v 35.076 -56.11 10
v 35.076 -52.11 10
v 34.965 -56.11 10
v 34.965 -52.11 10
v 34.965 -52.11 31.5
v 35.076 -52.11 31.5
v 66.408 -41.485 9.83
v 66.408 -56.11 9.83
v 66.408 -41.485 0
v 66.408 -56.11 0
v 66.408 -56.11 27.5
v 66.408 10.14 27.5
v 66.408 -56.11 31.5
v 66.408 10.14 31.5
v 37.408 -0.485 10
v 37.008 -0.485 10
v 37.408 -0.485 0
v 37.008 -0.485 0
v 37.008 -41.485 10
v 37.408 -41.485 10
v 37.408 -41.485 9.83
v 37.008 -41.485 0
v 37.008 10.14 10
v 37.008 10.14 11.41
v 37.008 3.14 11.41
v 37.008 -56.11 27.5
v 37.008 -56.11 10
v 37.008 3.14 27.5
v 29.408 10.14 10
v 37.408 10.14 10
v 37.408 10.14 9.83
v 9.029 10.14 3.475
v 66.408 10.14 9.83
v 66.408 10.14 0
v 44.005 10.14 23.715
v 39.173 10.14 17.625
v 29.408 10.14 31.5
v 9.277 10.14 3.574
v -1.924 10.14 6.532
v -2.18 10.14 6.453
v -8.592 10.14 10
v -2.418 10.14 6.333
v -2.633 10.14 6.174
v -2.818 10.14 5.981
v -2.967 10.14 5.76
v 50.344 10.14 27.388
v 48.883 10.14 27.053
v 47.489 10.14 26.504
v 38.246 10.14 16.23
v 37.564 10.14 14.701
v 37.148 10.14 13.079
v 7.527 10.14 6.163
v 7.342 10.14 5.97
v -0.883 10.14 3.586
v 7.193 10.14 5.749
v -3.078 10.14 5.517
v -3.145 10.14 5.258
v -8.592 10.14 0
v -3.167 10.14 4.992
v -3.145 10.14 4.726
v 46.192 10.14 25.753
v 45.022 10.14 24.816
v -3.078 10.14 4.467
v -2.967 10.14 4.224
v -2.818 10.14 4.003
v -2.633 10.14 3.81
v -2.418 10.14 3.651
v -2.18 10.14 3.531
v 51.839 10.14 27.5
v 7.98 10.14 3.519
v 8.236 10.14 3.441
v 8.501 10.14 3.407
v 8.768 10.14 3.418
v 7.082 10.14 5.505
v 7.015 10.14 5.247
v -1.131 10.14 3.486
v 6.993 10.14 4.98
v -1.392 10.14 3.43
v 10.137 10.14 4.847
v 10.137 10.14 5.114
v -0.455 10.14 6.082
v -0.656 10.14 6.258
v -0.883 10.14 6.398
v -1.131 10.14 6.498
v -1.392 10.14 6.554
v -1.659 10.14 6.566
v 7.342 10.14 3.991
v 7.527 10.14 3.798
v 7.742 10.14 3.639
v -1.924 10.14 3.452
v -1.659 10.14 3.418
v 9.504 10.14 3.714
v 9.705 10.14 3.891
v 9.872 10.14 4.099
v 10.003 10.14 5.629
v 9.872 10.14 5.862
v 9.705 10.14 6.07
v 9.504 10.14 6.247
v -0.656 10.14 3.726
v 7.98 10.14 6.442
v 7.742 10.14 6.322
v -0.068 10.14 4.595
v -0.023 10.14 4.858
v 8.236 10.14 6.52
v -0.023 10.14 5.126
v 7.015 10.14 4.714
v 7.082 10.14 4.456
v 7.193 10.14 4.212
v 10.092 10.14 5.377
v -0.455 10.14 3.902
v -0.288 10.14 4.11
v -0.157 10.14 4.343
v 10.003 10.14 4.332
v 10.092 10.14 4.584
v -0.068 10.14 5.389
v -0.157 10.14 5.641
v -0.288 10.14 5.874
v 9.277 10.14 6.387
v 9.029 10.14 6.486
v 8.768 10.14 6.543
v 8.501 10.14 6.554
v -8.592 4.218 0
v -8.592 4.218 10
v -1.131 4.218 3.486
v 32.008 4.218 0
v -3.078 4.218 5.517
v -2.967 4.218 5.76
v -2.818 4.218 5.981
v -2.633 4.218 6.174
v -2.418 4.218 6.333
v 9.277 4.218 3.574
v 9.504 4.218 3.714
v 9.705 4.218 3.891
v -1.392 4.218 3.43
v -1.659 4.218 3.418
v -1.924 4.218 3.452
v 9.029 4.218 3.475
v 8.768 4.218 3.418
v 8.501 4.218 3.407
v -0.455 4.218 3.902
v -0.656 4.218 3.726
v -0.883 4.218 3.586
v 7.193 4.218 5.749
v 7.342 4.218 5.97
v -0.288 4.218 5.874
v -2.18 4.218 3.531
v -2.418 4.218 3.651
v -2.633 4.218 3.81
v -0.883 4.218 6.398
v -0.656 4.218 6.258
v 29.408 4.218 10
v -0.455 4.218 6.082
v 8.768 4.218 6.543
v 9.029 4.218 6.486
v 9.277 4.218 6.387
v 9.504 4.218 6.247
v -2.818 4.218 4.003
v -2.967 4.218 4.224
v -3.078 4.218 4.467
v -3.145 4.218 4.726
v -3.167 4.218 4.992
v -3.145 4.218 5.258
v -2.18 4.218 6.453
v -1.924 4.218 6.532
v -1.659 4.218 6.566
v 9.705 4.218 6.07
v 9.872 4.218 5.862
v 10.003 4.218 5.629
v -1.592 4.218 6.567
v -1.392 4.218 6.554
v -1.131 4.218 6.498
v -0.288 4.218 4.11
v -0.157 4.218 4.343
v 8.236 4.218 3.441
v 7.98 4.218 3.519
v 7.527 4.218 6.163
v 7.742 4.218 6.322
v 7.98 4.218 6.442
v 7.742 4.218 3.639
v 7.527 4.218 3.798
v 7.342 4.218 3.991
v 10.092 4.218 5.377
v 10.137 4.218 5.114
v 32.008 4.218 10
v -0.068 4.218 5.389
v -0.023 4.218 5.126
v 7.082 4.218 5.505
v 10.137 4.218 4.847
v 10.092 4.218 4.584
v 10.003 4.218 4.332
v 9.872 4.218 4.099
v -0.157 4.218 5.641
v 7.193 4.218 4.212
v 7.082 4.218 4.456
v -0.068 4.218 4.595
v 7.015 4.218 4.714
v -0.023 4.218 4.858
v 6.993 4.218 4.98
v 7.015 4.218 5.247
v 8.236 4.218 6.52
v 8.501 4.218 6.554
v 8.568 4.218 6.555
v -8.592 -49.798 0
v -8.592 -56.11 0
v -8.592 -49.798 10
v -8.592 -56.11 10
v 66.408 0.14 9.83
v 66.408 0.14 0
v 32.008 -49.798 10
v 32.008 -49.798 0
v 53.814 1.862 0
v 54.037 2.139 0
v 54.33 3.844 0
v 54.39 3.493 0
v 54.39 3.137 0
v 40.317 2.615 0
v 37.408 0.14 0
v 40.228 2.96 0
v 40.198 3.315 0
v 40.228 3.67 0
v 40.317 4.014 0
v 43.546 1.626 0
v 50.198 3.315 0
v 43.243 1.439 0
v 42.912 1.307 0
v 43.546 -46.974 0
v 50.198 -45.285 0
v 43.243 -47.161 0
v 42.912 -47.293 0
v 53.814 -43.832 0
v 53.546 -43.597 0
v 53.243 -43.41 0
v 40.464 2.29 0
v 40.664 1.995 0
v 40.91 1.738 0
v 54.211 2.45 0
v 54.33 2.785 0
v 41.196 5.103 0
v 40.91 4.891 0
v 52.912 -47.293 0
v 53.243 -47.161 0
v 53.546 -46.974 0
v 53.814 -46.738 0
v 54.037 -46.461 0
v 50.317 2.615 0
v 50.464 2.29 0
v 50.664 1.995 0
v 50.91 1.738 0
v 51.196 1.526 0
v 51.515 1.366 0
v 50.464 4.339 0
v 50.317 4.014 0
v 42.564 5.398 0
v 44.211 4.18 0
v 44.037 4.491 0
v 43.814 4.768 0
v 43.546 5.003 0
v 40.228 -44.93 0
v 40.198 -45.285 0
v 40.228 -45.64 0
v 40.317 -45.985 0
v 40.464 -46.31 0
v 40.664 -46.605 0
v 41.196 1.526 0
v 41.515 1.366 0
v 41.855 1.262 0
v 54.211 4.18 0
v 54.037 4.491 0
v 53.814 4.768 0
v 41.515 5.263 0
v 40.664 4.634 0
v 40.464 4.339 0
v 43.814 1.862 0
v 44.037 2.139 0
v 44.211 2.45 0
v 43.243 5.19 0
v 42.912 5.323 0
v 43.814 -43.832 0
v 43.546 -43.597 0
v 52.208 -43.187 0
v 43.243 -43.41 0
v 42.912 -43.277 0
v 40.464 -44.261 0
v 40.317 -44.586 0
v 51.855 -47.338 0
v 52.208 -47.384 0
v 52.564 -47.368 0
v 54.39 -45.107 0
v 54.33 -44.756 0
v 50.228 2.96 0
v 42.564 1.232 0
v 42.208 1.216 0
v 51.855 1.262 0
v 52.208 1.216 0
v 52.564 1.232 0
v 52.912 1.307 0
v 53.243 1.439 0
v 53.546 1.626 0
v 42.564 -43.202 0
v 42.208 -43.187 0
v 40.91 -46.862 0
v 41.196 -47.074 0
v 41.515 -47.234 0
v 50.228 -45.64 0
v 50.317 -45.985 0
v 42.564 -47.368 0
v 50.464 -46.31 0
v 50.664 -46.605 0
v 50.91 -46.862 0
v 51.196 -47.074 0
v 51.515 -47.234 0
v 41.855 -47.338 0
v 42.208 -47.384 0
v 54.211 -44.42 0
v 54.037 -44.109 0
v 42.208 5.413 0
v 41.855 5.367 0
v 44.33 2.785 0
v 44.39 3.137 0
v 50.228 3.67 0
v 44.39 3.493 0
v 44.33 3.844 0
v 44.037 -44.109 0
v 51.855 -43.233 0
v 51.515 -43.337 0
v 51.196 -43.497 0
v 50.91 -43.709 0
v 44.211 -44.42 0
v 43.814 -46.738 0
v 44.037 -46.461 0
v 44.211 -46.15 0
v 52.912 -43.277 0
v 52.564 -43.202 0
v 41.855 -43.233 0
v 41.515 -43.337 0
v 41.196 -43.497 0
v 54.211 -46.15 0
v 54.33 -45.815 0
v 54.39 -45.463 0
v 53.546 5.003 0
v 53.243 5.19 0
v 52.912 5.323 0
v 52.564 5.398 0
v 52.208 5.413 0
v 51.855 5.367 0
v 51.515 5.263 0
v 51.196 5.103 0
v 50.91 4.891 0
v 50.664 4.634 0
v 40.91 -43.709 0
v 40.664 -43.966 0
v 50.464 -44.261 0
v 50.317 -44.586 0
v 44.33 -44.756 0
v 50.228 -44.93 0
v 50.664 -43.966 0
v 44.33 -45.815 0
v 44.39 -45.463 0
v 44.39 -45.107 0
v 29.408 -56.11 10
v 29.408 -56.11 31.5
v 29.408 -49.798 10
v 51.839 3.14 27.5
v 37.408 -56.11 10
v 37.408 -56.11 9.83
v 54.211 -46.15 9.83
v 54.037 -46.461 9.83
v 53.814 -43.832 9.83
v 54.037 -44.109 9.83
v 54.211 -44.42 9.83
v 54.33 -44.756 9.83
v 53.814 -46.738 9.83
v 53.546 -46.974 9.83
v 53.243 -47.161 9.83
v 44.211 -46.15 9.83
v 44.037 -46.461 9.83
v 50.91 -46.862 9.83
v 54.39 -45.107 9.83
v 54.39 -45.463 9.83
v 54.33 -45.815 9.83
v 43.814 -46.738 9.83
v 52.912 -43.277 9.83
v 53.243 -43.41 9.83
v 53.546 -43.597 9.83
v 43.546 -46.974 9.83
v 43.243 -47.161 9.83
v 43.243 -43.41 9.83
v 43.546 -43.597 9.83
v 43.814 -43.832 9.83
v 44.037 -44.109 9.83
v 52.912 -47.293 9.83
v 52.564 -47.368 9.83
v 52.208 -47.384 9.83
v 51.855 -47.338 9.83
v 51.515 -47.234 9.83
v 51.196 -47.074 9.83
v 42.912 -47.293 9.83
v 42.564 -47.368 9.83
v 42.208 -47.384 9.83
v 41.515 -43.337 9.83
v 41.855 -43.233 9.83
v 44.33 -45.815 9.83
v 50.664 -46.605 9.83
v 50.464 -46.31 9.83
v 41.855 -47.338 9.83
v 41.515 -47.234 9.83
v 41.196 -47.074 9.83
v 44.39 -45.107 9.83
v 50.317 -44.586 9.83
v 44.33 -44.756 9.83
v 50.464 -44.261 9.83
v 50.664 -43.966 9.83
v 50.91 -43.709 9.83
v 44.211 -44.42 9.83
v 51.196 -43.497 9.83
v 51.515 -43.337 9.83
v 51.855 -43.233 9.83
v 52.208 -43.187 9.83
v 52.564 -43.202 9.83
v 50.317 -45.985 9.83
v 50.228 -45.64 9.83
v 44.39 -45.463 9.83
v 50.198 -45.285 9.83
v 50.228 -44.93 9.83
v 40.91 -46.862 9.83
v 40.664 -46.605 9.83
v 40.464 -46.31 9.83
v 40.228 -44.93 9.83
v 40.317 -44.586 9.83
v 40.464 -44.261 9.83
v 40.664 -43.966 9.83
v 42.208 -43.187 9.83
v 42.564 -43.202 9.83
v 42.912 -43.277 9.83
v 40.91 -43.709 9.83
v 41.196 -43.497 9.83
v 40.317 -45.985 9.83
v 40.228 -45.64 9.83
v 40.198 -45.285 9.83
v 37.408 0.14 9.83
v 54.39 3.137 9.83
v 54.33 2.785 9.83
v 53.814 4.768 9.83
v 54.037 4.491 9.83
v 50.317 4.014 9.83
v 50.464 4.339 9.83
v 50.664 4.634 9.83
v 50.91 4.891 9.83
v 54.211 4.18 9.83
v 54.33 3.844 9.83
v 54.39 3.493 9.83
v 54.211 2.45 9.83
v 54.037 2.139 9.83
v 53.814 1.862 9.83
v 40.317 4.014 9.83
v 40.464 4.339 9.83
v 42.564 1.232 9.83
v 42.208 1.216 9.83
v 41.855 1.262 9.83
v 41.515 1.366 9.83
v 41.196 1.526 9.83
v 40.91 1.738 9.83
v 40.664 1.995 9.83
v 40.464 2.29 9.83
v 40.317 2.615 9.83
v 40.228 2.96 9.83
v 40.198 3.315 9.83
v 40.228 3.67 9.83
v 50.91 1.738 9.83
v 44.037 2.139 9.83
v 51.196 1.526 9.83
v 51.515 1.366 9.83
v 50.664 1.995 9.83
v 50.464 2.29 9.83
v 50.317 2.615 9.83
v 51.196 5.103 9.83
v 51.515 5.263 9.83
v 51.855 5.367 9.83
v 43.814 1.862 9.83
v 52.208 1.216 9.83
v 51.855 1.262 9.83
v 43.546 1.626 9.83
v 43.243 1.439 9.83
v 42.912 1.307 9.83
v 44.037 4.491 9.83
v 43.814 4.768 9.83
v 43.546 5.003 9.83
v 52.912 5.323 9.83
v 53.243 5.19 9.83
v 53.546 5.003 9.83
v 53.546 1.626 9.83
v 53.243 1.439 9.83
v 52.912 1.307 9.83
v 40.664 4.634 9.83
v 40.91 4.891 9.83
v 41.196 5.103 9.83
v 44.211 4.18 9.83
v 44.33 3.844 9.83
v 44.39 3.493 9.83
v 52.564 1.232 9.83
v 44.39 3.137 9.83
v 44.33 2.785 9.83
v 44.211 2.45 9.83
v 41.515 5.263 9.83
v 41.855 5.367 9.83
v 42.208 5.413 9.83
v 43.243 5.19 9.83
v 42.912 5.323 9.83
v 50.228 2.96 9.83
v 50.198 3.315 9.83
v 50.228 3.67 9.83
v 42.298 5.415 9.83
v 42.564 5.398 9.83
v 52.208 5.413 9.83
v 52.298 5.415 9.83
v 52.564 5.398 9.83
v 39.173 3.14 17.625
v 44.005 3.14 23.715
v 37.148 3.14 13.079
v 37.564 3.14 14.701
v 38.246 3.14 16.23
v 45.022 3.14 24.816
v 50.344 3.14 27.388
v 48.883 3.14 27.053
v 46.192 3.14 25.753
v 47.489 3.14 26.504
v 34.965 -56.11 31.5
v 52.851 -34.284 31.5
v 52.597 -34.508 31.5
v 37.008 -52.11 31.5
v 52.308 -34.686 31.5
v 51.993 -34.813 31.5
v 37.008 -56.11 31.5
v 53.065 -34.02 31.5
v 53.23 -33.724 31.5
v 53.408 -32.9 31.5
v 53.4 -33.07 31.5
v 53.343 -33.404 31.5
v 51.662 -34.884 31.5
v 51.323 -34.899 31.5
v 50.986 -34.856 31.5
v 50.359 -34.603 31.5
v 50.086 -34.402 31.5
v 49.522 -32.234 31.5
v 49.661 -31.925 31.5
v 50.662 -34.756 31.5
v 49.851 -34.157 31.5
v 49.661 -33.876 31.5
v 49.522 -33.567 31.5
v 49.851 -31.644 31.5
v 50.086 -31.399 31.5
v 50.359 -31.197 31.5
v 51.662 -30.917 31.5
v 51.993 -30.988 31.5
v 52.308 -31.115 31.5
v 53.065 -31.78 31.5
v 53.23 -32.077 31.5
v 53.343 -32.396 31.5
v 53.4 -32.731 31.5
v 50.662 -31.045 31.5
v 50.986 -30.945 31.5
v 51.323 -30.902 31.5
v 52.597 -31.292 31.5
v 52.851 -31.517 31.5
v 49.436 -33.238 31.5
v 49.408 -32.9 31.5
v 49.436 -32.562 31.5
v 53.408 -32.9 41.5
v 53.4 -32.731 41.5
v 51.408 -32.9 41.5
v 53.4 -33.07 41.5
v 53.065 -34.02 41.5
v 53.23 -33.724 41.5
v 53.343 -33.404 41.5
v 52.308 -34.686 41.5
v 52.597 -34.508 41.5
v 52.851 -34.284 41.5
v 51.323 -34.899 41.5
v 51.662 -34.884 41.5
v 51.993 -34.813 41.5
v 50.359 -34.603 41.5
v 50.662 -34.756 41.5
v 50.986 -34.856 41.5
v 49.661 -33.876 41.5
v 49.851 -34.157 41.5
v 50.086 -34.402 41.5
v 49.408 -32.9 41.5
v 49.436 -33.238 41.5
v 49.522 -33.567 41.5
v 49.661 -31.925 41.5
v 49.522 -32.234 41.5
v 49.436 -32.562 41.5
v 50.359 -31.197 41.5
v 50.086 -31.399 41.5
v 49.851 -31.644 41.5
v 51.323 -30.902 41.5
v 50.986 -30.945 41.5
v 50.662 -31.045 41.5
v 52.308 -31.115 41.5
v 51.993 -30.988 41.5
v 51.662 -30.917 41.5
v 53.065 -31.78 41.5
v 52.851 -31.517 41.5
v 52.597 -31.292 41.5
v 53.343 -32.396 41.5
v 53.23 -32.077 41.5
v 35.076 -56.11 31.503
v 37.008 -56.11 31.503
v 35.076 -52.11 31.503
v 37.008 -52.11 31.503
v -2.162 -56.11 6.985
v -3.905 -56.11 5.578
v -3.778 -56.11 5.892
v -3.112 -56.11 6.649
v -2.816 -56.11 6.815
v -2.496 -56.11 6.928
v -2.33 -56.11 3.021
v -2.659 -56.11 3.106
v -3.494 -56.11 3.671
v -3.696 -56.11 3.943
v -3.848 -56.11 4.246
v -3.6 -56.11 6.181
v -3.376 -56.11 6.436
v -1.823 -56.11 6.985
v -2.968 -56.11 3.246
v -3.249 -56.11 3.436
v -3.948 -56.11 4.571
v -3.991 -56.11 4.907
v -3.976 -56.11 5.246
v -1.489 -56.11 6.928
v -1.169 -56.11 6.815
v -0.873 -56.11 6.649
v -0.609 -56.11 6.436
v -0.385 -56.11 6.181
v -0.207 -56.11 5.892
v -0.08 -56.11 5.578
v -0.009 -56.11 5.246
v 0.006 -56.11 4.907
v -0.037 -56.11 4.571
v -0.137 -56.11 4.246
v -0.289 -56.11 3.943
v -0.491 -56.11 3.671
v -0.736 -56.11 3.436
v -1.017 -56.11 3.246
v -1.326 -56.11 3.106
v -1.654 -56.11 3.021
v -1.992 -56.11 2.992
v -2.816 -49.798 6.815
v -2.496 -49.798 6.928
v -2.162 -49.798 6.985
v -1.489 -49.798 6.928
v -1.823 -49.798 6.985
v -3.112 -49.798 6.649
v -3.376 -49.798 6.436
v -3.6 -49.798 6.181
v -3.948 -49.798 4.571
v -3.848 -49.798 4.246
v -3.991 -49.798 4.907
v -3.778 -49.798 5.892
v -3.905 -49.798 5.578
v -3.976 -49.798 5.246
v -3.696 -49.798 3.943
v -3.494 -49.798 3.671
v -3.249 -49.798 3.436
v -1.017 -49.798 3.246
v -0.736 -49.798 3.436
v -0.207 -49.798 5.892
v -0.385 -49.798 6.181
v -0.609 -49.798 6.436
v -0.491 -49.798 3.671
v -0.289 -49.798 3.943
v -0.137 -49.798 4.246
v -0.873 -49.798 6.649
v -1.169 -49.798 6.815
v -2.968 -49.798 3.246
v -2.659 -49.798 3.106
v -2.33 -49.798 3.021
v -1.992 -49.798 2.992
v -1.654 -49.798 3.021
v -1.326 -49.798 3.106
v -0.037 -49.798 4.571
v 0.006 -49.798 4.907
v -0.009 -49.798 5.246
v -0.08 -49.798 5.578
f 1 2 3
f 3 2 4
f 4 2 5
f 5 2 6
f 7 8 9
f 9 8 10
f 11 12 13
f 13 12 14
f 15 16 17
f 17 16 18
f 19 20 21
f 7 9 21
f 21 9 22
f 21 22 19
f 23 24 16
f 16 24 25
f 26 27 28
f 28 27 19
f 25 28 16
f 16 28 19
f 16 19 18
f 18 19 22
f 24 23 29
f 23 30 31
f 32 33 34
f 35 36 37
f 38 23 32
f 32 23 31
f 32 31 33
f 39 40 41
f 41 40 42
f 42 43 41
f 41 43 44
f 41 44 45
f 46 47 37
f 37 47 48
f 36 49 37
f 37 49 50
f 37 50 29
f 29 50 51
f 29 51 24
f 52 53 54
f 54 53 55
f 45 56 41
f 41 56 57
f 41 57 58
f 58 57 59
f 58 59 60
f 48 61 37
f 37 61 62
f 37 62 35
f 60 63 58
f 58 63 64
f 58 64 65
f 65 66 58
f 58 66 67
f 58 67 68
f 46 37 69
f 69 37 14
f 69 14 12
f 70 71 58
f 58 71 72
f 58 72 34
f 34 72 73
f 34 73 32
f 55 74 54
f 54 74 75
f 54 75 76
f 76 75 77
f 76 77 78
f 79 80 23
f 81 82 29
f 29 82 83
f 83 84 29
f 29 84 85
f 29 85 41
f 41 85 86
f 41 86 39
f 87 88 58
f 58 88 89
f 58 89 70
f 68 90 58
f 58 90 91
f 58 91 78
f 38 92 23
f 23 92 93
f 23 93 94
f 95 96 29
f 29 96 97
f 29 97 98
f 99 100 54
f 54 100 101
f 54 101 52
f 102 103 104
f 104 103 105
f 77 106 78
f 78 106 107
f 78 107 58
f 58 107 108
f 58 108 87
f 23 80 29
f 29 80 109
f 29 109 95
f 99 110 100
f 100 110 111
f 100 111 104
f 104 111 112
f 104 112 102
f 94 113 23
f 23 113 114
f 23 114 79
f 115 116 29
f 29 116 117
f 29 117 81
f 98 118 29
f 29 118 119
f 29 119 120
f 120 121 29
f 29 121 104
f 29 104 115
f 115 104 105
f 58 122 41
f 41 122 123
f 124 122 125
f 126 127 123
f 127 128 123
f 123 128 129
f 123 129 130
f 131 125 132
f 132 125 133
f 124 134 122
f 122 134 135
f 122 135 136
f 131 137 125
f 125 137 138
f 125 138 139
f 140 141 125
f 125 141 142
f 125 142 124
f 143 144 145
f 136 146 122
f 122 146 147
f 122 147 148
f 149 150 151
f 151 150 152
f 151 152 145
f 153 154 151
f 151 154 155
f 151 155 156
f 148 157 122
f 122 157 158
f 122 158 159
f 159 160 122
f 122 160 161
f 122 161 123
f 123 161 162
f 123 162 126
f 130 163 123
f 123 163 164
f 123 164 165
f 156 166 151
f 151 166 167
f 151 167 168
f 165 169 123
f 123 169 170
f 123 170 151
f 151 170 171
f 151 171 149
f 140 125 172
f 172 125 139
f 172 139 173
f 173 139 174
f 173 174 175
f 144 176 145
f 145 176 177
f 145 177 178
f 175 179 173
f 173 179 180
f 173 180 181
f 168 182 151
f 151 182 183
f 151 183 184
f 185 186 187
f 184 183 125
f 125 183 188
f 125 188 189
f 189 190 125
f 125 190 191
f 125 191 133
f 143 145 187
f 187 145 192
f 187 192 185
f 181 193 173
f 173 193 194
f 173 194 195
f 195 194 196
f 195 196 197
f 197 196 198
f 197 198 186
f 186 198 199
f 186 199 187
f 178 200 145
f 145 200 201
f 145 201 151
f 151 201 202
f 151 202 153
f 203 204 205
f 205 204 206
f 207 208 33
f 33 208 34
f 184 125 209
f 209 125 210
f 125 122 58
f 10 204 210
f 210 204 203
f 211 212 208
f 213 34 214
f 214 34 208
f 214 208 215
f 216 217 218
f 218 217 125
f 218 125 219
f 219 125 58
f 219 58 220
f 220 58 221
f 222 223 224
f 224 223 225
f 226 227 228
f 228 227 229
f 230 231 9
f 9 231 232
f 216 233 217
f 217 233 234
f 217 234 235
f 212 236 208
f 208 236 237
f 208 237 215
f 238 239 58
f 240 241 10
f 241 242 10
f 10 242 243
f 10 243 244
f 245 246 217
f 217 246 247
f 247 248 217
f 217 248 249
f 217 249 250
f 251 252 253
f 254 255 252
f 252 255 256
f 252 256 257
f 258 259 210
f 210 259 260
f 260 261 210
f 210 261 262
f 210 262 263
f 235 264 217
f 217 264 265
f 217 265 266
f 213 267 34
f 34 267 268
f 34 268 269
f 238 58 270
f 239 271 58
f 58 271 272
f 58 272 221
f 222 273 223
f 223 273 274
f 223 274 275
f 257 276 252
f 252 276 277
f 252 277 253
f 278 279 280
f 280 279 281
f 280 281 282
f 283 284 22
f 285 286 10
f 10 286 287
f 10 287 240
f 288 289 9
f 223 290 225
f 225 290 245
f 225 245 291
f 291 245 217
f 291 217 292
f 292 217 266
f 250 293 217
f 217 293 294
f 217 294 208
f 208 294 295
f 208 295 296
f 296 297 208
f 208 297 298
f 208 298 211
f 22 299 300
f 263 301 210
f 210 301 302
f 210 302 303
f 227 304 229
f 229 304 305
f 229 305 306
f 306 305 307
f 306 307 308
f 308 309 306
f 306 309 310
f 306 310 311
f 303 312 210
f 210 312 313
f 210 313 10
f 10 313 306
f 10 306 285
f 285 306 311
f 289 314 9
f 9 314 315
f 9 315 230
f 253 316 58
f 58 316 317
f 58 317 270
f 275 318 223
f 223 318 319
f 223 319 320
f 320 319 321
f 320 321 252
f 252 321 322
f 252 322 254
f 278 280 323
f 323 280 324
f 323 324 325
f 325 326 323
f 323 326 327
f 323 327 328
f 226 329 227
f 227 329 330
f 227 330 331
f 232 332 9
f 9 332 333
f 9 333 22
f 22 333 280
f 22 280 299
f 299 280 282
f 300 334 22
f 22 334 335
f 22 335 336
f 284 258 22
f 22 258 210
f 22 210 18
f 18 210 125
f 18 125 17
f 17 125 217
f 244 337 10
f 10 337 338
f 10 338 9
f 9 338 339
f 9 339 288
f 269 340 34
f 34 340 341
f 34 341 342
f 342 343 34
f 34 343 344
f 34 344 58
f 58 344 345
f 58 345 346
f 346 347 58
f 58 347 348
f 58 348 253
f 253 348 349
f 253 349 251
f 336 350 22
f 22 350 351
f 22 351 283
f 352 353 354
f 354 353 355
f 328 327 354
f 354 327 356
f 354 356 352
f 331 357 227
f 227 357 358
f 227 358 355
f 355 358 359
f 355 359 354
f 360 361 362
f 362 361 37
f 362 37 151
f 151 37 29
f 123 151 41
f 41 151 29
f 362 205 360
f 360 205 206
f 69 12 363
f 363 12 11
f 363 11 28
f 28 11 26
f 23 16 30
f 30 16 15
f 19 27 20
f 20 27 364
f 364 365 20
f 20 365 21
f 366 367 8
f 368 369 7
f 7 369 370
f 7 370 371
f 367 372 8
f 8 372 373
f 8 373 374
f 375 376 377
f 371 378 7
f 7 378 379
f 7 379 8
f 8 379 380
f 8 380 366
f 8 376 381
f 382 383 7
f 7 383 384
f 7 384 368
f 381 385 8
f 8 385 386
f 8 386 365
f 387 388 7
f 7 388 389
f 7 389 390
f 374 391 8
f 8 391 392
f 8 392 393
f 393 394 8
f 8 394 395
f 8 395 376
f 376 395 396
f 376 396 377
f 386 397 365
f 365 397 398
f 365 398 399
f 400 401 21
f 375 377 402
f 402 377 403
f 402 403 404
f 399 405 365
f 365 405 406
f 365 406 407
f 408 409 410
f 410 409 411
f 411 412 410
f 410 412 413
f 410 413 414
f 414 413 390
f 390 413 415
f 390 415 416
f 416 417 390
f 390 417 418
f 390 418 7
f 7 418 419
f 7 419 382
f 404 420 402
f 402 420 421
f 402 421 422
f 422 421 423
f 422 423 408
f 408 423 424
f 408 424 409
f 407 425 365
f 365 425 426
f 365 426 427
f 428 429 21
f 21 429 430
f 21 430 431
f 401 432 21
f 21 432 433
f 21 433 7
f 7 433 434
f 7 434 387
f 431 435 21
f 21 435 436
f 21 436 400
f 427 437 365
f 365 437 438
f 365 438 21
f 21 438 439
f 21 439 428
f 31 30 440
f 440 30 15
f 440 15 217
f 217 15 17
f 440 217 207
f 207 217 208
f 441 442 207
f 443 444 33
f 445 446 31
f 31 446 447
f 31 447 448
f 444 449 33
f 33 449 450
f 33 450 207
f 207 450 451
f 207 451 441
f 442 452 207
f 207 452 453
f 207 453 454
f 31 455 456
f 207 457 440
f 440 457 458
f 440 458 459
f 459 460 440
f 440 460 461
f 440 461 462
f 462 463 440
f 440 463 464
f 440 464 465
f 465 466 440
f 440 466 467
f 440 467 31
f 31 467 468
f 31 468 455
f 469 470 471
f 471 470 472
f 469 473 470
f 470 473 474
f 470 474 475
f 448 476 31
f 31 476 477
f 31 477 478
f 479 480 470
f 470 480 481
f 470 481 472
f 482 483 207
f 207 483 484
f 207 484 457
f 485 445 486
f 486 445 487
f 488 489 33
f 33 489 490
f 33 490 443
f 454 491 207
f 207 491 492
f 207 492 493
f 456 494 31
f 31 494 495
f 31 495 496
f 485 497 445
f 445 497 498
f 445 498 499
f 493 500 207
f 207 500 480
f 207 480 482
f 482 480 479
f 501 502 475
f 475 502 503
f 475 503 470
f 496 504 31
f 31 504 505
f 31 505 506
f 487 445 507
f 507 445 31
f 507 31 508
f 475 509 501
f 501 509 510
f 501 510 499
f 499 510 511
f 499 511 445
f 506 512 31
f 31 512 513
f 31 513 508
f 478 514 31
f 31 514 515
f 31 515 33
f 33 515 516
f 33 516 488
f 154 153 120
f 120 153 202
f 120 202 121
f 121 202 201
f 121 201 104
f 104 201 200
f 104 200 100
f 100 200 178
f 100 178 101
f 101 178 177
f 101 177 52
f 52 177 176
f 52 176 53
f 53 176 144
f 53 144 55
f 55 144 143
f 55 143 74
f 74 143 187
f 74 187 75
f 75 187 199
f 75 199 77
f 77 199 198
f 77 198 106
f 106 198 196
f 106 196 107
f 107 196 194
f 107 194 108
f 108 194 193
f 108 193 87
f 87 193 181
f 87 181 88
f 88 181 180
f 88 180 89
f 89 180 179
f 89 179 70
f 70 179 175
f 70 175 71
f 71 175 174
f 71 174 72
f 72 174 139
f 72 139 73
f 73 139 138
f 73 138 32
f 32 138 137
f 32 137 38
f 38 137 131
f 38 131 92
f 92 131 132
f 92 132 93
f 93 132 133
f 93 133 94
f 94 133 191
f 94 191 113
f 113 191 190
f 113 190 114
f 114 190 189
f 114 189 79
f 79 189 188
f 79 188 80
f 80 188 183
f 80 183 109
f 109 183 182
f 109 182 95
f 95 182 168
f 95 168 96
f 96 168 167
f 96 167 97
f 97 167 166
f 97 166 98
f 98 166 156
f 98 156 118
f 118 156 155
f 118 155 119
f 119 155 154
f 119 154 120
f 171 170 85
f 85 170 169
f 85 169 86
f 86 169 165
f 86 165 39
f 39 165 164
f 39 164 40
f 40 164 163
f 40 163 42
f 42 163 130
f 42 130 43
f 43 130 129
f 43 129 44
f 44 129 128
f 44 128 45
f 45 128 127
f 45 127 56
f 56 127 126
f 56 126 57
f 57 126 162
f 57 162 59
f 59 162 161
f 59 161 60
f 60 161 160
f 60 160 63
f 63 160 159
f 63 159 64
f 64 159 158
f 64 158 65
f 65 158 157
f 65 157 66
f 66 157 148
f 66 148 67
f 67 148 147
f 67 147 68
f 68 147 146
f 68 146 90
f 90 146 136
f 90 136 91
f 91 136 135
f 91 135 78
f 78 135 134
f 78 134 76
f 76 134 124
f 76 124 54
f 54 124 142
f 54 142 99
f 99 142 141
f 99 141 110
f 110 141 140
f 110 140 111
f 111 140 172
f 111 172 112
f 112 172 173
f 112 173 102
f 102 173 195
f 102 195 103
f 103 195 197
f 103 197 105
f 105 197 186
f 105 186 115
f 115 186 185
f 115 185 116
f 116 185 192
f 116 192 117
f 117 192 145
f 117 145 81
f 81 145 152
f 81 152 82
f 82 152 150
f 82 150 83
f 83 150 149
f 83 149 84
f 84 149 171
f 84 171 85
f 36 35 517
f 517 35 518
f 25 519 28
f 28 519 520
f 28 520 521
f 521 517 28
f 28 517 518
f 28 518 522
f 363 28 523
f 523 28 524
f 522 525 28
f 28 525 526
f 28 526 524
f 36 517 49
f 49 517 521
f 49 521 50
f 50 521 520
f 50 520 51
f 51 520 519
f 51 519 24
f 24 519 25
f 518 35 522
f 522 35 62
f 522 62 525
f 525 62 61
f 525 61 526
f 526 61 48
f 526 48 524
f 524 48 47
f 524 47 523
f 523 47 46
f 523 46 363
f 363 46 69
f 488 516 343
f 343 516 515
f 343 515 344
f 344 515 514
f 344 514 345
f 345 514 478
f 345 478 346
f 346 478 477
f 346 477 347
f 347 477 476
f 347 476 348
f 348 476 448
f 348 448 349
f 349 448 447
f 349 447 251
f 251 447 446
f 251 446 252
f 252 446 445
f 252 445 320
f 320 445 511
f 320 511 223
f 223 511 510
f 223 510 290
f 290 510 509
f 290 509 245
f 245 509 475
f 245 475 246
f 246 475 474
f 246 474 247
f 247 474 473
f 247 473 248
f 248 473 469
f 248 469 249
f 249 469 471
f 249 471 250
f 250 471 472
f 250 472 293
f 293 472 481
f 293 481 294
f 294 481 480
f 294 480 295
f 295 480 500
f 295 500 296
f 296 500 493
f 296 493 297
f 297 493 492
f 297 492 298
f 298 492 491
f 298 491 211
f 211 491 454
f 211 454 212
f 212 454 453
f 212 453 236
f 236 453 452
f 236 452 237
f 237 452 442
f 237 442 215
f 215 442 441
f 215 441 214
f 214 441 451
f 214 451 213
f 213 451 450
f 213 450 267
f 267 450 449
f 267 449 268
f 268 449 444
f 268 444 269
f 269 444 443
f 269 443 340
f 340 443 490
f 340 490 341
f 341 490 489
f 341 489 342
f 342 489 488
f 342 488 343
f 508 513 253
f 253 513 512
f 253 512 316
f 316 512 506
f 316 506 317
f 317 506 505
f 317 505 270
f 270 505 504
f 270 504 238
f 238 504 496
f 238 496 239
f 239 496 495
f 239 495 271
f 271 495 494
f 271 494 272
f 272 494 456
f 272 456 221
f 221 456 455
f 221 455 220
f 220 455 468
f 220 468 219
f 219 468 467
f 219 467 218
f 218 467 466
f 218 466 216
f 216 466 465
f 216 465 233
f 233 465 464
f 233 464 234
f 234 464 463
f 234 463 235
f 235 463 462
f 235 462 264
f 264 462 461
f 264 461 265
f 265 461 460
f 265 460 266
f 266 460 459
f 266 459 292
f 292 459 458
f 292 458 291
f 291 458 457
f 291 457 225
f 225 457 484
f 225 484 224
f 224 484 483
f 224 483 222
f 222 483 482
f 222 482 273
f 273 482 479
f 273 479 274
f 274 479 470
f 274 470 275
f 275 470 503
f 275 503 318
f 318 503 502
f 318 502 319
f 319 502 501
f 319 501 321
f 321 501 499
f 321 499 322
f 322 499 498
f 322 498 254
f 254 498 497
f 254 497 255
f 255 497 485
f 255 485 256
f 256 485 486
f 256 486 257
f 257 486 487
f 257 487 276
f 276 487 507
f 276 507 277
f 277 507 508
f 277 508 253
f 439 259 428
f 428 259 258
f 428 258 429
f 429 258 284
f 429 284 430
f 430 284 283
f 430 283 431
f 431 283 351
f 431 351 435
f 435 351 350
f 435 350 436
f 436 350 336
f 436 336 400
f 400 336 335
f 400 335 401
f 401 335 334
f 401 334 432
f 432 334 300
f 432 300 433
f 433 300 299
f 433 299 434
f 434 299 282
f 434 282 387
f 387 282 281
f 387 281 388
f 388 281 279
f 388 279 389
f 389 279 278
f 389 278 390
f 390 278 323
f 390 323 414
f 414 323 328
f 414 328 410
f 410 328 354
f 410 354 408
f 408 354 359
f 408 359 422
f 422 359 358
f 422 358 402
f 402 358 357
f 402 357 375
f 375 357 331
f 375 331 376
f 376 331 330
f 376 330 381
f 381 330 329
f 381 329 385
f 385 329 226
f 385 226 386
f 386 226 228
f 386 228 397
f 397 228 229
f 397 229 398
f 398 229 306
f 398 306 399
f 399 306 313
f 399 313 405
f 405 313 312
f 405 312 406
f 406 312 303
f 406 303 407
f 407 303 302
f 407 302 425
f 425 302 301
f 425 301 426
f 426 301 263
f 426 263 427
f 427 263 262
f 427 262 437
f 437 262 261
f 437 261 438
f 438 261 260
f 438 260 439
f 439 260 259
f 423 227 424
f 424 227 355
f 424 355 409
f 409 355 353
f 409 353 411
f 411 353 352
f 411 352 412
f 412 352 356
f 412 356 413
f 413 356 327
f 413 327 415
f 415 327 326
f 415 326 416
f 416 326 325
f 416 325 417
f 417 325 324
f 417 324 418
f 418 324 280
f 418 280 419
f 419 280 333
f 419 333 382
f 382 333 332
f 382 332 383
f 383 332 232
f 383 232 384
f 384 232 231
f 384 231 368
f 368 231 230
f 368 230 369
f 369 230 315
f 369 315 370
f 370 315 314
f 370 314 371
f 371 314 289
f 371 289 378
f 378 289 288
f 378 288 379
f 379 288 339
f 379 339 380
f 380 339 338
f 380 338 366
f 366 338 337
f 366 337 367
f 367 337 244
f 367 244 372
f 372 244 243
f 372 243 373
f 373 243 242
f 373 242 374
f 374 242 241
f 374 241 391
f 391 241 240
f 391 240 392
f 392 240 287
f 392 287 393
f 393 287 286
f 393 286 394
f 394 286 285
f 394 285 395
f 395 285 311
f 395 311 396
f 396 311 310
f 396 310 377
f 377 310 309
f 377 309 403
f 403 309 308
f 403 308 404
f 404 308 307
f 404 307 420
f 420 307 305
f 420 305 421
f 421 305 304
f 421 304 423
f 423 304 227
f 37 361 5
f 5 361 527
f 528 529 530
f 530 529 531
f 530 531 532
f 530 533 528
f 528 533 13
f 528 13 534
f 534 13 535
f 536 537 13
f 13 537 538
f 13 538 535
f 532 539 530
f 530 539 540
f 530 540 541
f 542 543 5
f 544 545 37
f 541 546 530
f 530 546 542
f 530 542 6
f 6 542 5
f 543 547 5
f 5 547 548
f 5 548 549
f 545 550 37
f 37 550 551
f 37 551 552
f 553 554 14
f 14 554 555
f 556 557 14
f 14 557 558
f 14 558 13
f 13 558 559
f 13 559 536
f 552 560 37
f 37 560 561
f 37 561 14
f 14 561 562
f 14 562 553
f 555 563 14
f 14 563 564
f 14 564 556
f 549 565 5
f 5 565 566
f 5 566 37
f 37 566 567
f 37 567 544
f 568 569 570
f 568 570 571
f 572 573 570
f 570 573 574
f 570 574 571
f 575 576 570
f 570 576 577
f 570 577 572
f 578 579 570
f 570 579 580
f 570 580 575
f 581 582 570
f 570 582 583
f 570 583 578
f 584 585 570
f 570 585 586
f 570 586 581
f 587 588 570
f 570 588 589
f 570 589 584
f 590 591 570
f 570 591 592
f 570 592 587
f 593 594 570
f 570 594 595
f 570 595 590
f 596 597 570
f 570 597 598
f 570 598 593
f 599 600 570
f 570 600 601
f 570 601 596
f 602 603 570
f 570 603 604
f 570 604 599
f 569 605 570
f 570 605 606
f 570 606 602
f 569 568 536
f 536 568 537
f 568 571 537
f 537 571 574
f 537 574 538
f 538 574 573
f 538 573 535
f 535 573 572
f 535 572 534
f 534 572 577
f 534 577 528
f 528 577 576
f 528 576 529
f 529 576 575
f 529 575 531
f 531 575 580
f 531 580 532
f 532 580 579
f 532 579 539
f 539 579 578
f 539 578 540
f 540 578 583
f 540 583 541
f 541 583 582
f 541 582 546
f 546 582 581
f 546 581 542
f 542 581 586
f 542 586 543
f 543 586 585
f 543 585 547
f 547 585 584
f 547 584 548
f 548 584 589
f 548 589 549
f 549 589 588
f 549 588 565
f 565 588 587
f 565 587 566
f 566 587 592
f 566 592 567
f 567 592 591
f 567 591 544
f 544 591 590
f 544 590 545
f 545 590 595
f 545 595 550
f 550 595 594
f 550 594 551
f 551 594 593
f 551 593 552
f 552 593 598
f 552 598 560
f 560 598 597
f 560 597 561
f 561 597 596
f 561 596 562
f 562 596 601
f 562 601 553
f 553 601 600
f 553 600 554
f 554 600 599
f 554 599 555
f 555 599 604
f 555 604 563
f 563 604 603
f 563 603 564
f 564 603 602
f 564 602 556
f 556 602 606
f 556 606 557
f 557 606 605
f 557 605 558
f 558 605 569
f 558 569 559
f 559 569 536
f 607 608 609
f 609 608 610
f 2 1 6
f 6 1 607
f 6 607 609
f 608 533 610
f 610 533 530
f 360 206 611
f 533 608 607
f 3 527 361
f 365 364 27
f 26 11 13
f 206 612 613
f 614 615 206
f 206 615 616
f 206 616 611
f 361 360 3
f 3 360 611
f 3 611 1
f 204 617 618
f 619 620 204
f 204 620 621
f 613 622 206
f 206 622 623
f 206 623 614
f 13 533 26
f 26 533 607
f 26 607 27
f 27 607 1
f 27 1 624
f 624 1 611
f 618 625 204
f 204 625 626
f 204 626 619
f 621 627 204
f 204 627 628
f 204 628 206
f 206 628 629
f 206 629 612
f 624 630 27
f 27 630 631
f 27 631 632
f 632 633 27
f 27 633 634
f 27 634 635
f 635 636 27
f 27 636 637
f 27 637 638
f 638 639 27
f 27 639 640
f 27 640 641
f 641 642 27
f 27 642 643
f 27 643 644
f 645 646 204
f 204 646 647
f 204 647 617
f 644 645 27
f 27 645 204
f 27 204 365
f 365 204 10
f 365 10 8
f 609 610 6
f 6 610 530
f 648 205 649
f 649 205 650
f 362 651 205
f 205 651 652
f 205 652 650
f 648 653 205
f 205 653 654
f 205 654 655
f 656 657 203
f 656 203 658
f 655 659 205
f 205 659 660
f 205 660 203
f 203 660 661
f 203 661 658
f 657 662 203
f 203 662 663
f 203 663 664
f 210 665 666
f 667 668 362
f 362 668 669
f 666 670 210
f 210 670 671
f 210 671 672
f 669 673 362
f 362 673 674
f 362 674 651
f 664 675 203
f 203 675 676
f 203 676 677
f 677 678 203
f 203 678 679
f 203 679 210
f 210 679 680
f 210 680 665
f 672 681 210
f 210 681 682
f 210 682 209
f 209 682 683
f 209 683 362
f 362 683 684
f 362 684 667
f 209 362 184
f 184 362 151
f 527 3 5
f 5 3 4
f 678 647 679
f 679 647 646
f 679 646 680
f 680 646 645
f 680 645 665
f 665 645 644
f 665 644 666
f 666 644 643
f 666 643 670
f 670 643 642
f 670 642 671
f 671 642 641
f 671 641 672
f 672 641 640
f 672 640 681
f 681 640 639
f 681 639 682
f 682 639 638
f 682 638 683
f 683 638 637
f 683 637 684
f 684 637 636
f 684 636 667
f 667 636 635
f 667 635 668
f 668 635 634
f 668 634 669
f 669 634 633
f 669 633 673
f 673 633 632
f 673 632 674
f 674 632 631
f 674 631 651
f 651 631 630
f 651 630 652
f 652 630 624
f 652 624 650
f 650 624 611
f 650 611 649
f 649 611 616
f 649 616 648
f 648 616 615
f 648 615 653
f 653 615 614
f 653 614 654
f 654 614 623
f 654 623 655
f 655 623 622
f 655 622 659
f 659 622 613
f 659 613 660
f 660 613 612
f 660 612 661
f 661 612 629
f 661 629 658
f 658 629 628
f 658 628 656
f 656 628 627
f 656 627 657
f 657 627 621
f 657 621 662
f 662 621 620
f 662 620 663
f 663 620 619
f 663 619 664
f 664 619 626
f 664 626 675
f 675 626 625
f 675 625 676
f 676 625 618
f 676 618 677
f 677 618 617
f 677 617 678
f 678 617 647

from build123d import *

# Parameters (mm, degrees)
SKETCH3_W               = 5
SKETCH3_H               = 41
SKETCH3_W_2             = 40.6
SKETCH3_H_2             = 5.921911982
SKETCH3_H_3             = 5.716066276
BOSS_EXTRUDE3_DEPTH     = 29.5
SKETCH4_W               = 38
SKETCH4_H               = 19.5
CUT_EXTRUDE1_DEPTH      = 83
SKETCH6_W               = 2
SKETCH6_H               = 62.25
BOSS_EXTRUDE4_DEPTH     = 30
CUT_EXTRUDE3_DEPTH      = 96.683171243
CUT_EXTRUDE3_DEPTH_BACK = 77
SKETCH9_W               = 24.4
SKETCH9_H               = 17.5
SKETCH10_R              = 2
BOSS_EXTRUDE5_DEPTH     = 12
CUT_EXTRUDE4_DEPTH      = 29
SKETCH12_W              = 5
SKETCH12_H              = 3.036960159
CUT_EXTRUDE5_DEPTH      = 66
SKETCH13_R              = 1.575
CUT_EXTRUDE6_DEPTH      = 20
BOSS_EXTRUDE6_DEPTH     = 7
FILLET1_R               = 10
SKETCH15_R              = 2.1
CUT_EXTRUDE7_DEPTH      = 13
SKETCH16_W              = 37
SKETCH16_H              = 62.25
BOSS_EXTRUDE7_DEPTH     = 2
BOSS_EXTRUDE8_DEPTH     = 4
SKETCH19_W              = 40.6
SKETCH19_H              = 3.403788035
CUT_EXTRUDE8_DEPTH      = 97.335783039
SKETCH20_W              = 5.557340338
SKETCH20_H              = 21.5
BOSS_EXTRUDE9_DEPTH     = 66.25
SKETCH22_R              = 2
CUT_EXTRUDE11_DEPTH     = 12


with BuildPart() as part:
    # Sketch3 → Boss-Extrude3 (new body)
    with BuildSketch(Plane.XY):
        Polygon((37.007505292, -41.485394176), (37.007505292, -0.485394176), (37.007505292, 10.139605824), (32.007505292, 10.139605824), (32.007505292, 4.217693842), (32.007505292, -46.3943279), (32.007505292, -52.110394176), (37.007505292, -52.110394176), align=None)
        with Locations((63.907505292, -20.985394176)):
            Rectangle(SKETCH3_W, SKETCH3_H)
        Polygon((61.407505292, -41.485394176), (37.007505292, -41.485394176), (37.007505292, -52.110394176), (66.407505292, -52.110394176), (66.407505292, -41.485394176), align=None)
        Polygon((37.007505292, 10.139605824), (37.007505292, -0.485394176), (61.407505292, -0.485394176), (66.407505292, -0.485394176), (66.407505292, 10.139605824), align=None)
        with Locations((11.707505292, 7.178649833)):
            Rectangle(SKETCH3_W_2, SKETCH3_H_2)
        with Locations((11.707505292, -49.252361038)):
            Rectangle(SKETCH3_W_2, SKETCH3_H_3)
    extrude(amount=BOSS_EXTRUDE3_DEPTH)

    # Sketch4 → Cut-Extrude1 (cut)
    with BuildSketch(Plane.XZ.offset(52.110394176)):
        with Locations((10.407505292, 19.75)):
            Rectangle(SKETCH4_W, SKETCH4_H)
    extrude(amount=-CUT_EXTRUDE1_DEPTH, mode=Mode.SUBTRACT)

    # Sketch6 → Boss-Extrude4 (add)
    with BuildSketch(Plane(origin=(66.407505292, 0, 0), x_dir=(0, 0, -1), z_dir=(1, 0, 0))):
        with Locations((-28.5, -20.985394176)):
            Rectangle(SKETCH6_W, SKETCH6_H)
    extrude(amount=-BOSS_EXTRUDE4_DEPTH)

    # Sketch9 → Cut-Extrude3 (cut, two sides: drawn at the far end of the back side and taken through both)
    with BuildSketch(Plane(origin=(0, -52.110394176, 0), x_dir=(-1, 0, 0), z_dir=(0, -1, 0)).offset(-CUT_EXTRUDE3_DEPTH_BACK)):
        with Locations((-49.207505292, -18.75)):
            Rectangle(SKETCH9_W, SKETCH9_H)
    extrude(amount=CUT_EXTRUDE3_DEPTH + CUT_EXTRUDE3_DEPTH_BACK, mode=Mode.SUBTRACT)

    # Sketch10 → Boss-Extrude5 (add)
    with BuildSketch(Plane.XY.offset(29.5)):
        with Locations((51.407505292, -32.900394176)):
            Circle(SKETCH10_R)
    extrude(amount=BOSS_EXTRUDE5_DEPTH)

    # Sketch11 → Cut-Extrude4 (cut)
    with BuildSketch(Plane(origin=(66.407505292, 0, 0), x_dir=(0, 0, -1), z_dir=(1, 0, 0))):
        Polygon((0, -41.485394176), (-9.829517325, -41.485394176), (-9.829517325, -52.110394176), (-24.463039841, -52.110394176), (-24.463039841, -42.110394176), (-24.463039841, 0), (-24.463039841, 10.139605824), (-9.829517325, 10.139605824), (-9.829517325, 0.139605824), (0, 0.139605824), align=None)
    extrude(amount=-CUT_EXTRUDE4_DEPTH, mode=Mode.SUBTRACT)

    # Sketch12 → Cut-Extrude5 (cut)
    with BuildSketch(Plane(origin=(0, 10.139605824, 0), x_dir=(1, 0, 0), z_dir=(0, 1, 0))):
        with Locations((63.907505292, -25.98151992)):
            Rectangle(SKETCH12_W, SKETCH12_H)
    extrude(amount=-CUT_EXTRUDE5_DEPTH, mode=Mode.SUBTRACT)

    # Sketch13 → Cut-Extrude6 (cut)
    with BuildSketch(Plane(origin=(0, 10.139605824, 0), x_dir=(1, 0, 0), z_dir=(0, 1, 0))):
        with Locations(Location((-1.592494708, -4.992044142, 0), (0, 0, 180))):
            Circle(SKETCH13_R)
        with Locations(Location((8.567505292, -4.980496782, 0), (0, 0, 180))):
            Circle(SKETCH13_R)
    extrude(amount=-CUT_EXTRUDE6_DEPTH, mode=Mode.SUBTRACT)

    # Sketch14 → Boss-Extrude6 (add)
    with BuildSketch(Plane(origin=(0, 10.139605824, 0), x_dir=(1, 0, 0), z_dir=(0, 1, 0))):
        Polygon((47.007505292, -27.5), (37.007505292, -14.894614106), (37.007505292, -27.5), align=None)
    extrude(amount=-BOSS_EXTRUDE6_DEPTH)

    # Fillet1
    fillet1_edges = [part.edges().sort_by_distance(p)[0] for p in [
        (47.007505292, 6.639605824, 27.5),
        (37.007505292, 6.639605824, 14.894614106),
    ]]
    fillet(fillet1_edges, radius=FILLET1_R)

    # Sketch15 → Cut-Extrude7 (cut)
    with BuildSketch(Plane(origin=(0, 0, 0), x_dir=(-1, 0, 0), z_dir=(0, 0, -1))):
        with Locations((-42.297505292, -45.285394176)):
            Circle(SKETCH15_R)
        with Locations((-52.297505292, -45.285394176)):
            Circle(SKETCH15_R)
        with Locations((-42.297505292, 3.314605824)):
            Circle(SKETCH15_R)
        with Locations((-52.297505292, 3.314605824)):
            Circle(SKETCH15_R)
    extrude(amount=-CUT_EXTRUDE7_DEPTH, mode=Mode.SUBTRACT)

    # Sketch16 → Boss-Extrude7 (add)
    with BuildSketch(Plane.XY.offset(29.5)):
        with Locations((47.907505292, -20.985394176)):
            Rectangle(SKETCH16_W, SKETCH16_H)
    extrude(amount=BOSS_EXTRUDE7_DEPTH)

    # Sketch17 → Boss-Extrude8 (add)
    with BuildSketch(Plane.XZ.offset(52.110394176)):
        Polygon((-8.592494708, 0), (66.407505292, 0), (66.407505292, 9.829517325), (37.407505292, 9.829517325), (37.407505292, 10), (37.007505292, 10), (37.007505292, 27.5), (66.407505292, 27.5), (66.407505292, 31.5), (37.007505292, 31.5), (37.007505292, 31.503473539), (35.075655428, 31.503473539), (35.075655428, 10), (-8.592494708, 10), align=None)
    extrude(amount=BOSS_EXTRUDE8_DEPTH)

    # Sketch19 → Cut-Extrude8 (cut, through all)
    with BuildSketch(Plane(origin=(0, 0, 0), x_dir=(-1, 0, 0), z_dir=(0, 0, -1))):
        with Locations((-11.707505292, -48.096221918)):
            Rectangle(SKETCH19_W, SKETCH19_H)
    extrude(amount=-CUT_EXTRUDE8_DEPTH, mode=Mode.SUBTRACT)

    # Sketch20 → Boss-Extrude9 (add)
    with BuildSketch(Plane(origin=(0, 10.139605824, 0), x_dir=(1, 0, 0), z_dir=(0, 1, 0))):
        with Locations((32.186175461, -20.75)):
            Rectangle(SKETCH20_W, SKETCH20_H)
    extrude(amount=-BOSS_EXTRUDE9_DEPTH)

    # Sketch22 → Cut-Extrude11 (cut)
    with BuildSketch(Plane.XZ.offset(56.110394176)):
        with Locations(Location((-1.992494708, 4.992044142, 0), (0, 0, 270))):
            Circle(SKETCH22_R)
    extrude(amount=-CUT_EXTRUDE11_DEPTH, mode=Mode.SUBTRACT)


solid = part.part
